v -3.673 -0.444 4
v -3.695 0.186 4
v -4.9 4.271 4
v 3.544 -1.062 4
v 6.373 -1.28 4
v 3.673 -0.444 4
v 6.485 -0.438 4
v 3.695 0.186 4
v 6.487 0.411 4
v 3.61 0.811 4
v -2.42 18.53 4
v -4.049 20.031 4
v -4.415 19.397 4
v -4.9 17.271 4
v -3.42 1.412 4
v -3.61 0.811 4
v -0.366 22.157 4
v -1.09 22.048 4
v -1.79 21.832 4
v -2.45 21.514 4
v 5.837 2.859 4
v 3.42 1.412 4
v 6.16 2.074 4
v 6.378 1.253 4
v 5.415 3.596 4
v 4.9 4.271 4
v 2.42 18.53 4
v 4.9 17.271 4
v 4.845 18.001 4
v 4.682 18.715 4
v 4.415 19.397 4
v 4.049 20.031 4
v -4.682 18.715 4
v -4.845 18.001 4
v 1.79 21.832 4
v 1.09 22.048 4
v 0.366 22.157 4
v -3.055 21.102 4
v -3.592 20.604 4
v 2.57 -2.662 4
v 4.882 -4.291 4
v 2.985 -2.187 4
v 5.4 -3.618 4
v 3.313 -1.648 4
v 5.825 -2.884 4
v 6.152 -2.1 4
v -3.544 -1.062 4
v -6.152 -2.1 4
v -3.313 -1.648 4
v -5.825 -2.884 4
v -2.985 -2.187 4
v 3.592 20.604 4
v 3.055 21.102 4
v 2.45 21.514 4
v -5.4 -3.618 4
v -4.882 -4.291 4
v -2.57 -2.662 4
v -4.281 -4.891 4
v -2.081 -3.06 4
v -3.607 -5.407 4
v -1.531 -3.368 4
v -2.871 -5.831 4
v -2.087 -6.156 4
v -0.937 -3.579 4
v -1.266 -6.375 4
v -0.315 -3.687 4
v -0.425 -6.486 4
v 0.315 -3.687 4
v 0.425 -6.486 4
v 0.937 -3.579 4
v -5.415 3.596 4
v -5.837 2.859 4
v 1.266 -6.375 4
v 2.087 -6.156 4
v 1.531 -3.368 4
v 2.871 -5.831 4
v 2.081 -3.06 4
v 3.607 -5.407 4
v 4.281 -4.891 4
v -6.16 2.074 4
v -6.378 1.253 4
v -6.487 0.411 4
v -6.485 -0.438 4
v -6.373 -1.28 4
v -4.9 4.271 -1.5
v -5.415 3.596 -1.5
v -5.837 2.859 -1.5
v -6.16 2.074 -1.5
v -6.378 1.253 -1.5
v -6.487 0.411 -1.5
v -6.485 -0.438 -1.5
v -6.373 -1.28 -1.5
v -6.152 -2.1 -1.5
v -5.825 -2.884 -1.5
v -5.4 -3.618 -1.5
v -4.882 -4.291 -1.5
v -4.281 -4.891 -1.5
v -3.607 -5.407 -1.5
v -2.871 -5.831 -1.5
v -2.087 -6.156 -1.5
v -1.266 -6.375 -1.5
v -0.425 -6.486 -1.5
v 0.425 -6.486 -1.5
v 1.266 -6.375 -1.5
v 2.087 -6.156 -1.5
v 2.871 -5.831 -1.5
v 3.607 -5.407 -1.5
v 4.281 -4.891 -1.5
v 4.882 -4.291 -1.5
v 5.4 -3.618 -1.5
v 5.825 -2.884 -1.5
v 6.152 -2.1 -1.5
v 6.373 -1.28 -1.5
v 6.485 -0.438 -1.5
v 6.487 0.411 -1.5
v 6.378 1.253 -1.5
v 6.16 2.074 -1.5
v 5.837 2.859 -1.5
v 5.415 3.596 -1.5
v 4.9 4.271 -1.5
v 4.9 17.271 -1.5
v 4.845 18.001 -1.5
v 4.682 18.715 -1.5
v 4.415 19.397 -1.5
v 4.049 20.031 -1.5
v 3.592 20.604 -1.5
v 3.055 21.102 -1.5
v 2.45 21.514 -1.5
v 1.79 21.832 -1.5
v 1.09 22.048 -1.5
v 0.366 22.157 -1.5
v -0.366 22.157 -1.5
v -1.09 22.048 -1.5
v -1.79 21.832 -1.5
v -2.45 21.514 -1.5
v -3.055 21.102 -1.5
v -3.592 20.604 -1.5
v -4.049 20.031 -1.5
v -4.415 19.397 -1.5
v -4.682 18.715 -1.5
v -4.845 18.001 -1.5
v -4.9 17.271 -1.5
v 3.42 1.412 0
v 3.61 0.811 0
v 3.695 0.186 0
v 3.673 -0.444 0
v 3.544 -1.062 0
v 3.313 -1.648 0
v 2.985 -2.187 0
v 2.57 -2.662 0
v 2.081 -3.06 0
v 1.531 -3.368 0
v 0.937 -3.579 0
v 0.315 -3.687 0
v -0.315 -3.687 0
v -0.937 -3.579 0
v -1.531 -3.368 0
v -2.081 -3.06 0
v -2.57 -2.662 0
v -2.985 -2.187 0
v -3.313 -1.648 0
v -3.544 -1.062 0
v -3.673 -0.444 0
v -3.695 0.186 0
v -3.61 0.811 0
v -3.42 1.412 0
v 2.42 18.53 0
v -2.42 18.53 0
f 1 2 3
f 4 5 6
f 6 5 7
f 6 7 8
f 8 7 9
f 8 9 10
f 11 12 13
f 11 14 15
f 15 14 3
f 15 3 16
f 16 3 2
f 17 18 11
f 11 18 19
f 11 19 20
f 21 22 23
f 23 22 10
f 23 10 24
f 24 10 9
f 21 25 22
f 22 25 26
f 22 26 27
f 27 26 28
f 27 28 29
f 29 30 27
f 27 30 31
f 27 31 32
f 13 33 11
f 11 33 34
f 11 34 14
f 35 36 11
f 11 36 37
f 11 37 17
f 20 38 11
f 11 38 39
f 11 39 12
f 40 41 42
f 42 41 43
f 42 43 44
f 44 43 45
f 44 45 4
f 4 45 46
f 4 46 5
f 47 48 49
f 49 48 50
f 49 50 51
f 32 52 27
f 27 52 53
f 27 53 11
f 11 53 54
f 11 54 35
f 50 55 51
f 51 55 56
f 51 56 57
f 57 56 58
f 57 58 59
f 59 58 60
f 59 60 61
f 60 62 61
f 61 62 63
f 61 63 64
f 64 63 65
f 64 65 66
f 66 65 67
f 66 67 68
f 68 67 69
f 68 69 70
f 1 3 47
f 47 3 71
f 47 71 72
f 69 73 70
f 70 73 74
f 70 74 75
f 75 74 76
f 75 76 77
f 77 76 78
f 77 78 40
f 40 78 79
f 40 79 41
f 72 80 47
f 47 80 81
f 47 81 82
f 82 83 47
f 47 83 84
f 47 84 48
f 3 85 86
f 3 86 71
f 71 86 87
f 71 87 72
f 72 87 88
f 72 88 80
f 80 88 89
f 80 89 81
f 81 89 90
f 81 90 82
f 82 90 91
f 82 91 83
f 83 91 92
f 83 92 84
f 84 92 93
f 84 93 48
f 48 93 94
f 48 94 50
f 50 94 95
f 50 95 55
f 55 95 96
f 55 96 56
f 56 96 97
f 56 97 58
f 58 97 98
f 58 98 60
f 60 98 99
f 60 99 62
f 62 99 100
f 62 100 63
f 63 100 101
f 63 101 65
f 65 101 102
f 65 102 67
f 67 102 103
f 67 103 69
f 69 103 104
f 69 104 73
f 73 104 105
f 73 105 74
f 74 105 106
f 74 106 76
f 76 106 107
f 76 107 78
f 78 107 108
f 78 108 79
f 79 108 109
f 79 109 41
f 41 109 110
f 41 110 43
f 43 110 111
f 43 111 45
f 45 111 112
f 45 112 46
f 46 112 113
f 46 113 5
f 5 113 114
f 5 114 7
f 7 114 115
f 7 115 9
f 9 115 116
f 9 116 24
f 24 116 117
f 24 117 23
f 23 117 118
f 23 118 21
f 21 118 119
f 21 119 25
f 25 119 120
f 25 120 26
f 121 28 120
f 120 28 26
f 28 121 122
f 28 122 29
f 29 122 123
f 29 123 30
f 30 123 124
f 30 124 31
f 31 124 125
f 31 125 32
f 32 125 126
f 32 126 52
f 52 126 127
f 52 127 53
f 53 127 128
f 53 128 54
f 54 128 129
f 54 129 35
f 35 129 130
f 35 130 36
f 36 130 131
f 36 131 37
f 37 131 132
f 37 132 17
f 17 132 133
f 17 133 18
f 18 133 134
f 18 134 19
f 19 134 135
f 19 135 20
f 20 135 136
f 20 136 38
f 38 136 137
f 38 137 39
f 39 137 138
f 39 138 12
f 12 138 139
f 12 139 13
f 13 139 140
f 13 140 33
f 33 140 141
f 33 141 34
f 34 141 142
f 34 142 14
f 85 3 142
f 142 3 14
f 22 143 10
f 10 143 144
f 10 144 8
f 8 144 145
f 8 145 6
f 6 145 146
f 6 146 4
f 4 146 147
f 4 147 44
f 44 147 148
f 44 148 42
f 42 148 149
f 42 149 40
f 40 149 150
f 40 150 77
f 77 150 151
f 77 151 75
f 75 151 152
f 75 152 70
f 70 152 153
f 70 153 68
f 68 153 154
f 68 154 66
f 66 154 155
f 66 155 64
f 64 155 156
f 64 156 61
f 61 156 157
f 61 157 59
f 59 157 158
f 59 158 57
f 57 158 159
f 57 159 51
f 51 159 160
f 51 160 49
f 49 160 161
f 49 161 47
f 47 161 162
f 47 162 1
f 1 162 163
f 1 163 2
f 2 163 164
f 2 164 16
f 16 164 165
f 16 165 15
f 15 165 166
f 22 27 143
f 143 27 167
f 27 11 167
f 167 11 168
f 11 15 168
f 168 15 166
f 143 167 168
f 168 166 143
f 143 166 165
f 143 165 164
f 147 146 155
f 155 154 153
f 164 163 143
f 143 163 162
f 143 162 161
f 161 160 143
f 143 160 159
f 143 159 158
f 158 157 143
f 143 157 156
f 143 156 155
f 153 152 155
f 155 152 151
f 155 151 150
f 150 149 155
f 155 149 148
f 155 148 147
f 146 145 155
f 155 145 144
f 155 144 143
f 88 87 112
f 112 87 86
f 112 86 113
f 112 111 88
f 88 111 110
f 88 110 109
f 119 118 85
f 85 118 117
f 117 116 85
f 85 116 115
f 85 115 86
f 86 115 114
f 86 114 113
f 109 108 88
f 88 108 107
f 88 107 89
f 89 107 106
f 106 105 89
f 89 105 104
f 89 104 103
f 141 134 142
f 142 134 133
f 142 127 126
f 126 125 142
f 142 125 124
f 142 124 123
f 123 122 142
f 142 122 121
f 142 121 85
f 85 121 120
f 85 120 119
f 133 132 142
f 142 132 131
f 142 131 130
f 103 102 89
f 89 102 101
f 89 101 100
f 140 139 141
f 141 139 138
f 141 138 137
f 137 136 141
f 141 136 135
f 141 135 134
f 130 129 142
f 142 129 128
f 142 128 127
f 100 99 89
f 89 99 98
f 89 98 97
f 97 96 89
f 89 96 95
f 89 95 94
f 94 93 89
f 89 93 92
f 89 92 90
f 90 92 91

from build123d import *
from build123d.topology import SkipClean

# Parameters (mm, degrees)
BOSS_EXTRUDE1_DEPTH = 4
BOSS_EXTRUDE2_START = 1.5
BOSS_EXTRUDE2_DEPTH = 1.5


with BuildPart() as part:
    # Sketch2 → Boss-Extrude1 (new body)
    with BuildSketch(Plane.XY):
        with BuildLine():
            Line((-4.9, 4.270831301), (-4.9, 17.270831301))
            ThreePointArc((-4.9, 17.270831301), (0, 22.170831301), (4.9, 17.270831301))
            Line((4.9, 17.270831301), (4.9, 4.270831301))
            ThreePointArc((4.9, 4.270831301), (0, -6.5), (-4.9, 4.270831301))
        make_face()
        with BuildLine():
            Line((2.42, 18.53), (-2.42, 18.53))
            Line((-2.42, 18.53), (-3.42, 1.411949008))
            ThreePointArc((-3.42, 1.411949008), (0, -3.7), (3.42, 1.411949008))
            Line((3.42, 1.411949008), (2.42, 18.53))
        make_face(mode=Mode.SUBTRACT)
    extrude(amount=BOSS_EXTRUDE1_DEPTH)

    # Sketch3 → Boss-Extrude2 (add)
    with SkipClean():  # the faces are left unmerged after this step: merging them gives an invalid solid
        with BuildSketch(Plane(origin=(0, 0, 0), x_dir=(-1, 0, 0), z_dir=(0, 0, -1)).offset(BOSS_EXTRUDE2_START)):
            with BuildLine():
                Line((-4.9, 4.270831301), (-4.9, 17.270831301))
                ThreePointArc((-4.9, 17.270831301), (0, 22.170831301), (4.9, 17.270831301))
                Line((4.9, 17.270831301), (4.9, 4.270831301))
                ThreePointArc((4.9, 4.270831301), (0, -6.5), (-4.9, 4.270831301))
            make_face()
        extrude(amount=-BOSS_EXTRUDE2_DEPTH)


solid = part.part
